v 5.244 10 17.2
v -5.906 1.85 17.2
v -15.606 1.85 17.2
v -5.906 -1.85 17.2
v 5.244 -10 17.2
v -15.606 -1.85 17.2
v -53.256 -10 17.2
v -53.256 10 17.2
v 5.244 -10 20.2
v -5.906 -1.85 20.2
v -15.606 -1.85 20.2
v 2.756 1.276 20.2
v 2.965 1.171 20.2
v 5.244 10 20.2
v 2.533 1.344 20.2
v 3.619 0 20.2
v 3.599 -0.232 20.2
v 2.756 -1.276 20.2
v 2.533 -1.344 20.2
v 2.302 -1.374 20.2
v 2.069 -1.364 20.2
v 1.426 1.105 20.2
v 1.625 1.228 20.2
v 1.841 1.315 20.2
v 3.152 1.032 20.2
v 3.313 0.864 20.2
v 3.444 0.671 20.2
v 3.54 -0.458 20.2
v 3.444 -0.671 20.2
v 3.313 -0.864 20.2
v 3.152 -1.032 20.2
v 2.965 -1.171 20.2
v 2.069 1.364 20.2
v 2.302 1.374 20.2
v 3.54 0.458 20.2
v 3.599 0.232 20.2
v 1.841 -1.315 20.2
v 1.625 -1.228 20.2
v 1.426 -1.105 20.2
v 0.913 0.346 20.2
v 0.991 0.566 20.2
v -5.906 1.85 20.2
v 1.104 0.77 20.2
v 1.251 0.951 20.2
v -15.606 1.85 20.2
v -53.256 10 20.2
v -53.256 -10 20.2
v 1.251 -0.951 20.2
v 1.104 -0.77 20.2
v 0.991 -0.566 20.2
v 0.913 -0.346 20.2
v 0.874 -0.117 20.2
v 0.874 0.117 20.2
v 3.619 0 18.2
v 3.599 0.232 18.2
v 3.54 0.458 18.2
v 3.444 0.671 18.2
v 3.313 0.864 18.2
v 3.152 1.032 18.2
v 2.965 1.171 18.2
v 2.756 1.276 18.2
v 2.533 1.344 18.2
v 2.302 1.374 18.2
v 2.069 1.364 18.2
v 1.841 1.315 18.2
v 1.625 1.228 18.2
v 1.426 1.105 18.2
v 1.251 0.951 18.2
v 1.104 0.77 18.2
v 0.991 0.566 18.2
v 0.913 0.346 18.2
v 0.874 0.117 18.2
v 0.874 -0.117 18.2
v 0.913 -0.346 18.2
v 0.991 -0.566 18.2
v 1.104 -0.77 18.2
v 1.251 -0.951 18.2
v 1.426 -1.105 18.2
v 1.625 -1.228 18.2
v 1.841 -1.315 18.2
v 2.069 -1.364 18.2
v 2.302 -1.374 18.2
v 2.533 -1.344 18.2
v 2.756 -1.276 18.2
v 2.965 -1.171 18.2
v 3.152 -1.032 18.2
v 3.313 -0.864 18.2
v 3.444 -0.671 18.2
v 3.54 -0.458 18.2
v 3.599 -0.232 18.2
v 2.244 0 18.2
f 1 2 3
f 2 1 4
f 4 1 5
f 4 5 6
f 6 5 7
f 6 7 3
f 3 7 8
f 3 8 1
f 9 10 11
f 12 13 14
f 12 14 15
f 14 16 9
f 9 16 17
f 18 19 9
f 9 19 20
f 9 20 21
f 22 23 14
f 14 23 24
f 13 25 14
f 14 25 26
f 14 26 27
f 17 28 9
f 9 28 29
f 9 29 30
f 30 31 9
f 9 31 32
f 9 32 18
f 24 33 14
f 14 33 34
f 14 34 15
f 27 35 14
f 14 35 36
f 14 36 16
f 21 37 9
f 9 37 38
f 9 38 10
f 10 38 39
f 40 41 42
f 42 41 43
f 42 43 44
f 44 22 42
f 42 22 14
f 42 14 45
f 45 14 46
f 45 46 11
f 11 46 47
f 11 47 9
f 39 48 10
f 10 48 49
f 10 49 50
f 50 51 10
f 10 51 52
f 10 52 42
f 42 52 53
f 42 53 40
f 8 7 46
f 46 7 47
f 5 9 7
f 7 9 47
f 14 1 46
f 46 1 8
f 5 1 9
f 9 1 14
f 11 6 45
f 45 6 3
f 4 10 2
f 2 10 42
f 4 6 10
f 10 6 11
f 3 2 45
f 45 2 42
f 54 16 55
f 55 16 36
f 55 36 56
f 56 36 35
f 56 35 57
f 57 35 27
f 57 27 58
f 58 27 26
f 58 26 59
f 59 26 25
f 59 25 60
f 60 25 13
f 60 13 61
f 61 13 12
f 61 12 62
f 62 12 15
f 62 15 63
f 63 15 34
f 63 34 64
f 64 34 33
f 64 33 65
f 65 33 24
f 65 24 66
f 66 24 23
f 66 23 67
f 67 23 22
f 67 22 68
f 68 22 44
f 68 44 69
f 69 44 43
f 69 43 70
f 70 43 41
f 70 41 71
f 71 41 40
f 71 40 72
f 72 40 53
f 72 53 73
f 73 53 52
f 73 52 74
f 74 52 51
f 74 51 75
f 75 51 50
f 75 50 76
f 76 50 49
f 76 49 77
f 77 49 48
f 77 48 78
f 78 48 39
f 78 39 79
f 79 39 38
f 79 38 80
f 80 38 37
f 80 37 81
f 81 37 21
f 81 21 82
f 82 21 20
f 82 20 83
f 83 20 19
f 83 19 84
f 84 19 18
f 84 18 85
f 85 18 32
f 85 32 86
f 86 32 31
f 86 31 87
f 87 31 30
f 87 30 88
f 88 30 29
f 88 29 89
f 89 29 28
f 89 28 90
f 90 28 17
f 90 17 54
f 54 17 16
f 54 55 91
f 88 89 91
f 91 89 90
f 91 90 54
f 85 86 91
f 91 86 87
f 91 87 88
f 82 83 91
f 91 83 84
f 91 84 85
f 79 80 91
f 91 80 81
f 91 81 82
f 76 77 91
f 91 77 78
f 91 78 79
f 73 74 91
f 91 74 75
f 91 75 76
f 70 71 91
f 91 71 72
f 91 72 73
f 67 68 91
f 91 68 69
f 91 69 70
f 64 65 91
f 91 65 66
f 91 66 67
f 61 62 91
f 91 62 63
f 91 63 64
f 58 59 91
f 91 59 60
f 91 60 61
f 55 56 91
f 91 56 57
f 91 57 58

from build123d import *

# Parameters (mm, degrees)
EXTRUDE_1_DEPTH      = 10
EXTRUDE_1_DEPTH_BACK = 10
SKETCH_1_W           = 58.5
SKETCH_1_H           = 3
SKETCH_1_3_W         = 9.7
SKETCH_1_3_H         = 3
CUT_EXTRUDE_1_DEPTH  = 1.85
SKETCH_2_R           = 1.375
CUT_EXTRUDE_2_DEPTH  = 2


with BuildPart() as part:
    # 草圖1 → 填料-伸長1 (new, two sides: drawn at the far end of the back side and taken through both)
    with BuildSketch(Plane(origin=(0, 0, 0), x_dir=(1, 0, 0), z_dir=(0, 1, 0)).offset(-EXTRUDE_1_DEPTH_BACK)):
        with Locations((-24.00631853, -18.7)):
            Rectangle(SKETCH_1_W, SKETCH_1_H)
    extrude(amount=EXTRUDE_1_DEPTH + EXTRUDE_1_DEPTH_BACK)

    # 草圖1<3> → 除料-伸長1 (cut, symmetric)
    with BuildSketch(Plane(origin=(0, 0, 0), x_dir=(1, 0, 0), z_dir=(0, 1, 0))):
        with Locations((-10.75631853, -18.7)):
            Rectangle(SKETCH_1_3_W, SKETCH_1_3_H)
    extrude(amount=CUT_EXTRUDE_1_DEPTH, both=True, mode=Mode.SUBTRACT)

    # 草圖2 → 除料-伸長2 (cut)
    with BuildSketch(Plane.XY.offset(20.2)):
        with Locations((2.24368147, 0)):
            Circle(SKETCH_2_R)
    extrude(amount=-CUT_EXTRUDE_2_DEPTH, mode=Mode.SUBTRACT)


solid = part.part
